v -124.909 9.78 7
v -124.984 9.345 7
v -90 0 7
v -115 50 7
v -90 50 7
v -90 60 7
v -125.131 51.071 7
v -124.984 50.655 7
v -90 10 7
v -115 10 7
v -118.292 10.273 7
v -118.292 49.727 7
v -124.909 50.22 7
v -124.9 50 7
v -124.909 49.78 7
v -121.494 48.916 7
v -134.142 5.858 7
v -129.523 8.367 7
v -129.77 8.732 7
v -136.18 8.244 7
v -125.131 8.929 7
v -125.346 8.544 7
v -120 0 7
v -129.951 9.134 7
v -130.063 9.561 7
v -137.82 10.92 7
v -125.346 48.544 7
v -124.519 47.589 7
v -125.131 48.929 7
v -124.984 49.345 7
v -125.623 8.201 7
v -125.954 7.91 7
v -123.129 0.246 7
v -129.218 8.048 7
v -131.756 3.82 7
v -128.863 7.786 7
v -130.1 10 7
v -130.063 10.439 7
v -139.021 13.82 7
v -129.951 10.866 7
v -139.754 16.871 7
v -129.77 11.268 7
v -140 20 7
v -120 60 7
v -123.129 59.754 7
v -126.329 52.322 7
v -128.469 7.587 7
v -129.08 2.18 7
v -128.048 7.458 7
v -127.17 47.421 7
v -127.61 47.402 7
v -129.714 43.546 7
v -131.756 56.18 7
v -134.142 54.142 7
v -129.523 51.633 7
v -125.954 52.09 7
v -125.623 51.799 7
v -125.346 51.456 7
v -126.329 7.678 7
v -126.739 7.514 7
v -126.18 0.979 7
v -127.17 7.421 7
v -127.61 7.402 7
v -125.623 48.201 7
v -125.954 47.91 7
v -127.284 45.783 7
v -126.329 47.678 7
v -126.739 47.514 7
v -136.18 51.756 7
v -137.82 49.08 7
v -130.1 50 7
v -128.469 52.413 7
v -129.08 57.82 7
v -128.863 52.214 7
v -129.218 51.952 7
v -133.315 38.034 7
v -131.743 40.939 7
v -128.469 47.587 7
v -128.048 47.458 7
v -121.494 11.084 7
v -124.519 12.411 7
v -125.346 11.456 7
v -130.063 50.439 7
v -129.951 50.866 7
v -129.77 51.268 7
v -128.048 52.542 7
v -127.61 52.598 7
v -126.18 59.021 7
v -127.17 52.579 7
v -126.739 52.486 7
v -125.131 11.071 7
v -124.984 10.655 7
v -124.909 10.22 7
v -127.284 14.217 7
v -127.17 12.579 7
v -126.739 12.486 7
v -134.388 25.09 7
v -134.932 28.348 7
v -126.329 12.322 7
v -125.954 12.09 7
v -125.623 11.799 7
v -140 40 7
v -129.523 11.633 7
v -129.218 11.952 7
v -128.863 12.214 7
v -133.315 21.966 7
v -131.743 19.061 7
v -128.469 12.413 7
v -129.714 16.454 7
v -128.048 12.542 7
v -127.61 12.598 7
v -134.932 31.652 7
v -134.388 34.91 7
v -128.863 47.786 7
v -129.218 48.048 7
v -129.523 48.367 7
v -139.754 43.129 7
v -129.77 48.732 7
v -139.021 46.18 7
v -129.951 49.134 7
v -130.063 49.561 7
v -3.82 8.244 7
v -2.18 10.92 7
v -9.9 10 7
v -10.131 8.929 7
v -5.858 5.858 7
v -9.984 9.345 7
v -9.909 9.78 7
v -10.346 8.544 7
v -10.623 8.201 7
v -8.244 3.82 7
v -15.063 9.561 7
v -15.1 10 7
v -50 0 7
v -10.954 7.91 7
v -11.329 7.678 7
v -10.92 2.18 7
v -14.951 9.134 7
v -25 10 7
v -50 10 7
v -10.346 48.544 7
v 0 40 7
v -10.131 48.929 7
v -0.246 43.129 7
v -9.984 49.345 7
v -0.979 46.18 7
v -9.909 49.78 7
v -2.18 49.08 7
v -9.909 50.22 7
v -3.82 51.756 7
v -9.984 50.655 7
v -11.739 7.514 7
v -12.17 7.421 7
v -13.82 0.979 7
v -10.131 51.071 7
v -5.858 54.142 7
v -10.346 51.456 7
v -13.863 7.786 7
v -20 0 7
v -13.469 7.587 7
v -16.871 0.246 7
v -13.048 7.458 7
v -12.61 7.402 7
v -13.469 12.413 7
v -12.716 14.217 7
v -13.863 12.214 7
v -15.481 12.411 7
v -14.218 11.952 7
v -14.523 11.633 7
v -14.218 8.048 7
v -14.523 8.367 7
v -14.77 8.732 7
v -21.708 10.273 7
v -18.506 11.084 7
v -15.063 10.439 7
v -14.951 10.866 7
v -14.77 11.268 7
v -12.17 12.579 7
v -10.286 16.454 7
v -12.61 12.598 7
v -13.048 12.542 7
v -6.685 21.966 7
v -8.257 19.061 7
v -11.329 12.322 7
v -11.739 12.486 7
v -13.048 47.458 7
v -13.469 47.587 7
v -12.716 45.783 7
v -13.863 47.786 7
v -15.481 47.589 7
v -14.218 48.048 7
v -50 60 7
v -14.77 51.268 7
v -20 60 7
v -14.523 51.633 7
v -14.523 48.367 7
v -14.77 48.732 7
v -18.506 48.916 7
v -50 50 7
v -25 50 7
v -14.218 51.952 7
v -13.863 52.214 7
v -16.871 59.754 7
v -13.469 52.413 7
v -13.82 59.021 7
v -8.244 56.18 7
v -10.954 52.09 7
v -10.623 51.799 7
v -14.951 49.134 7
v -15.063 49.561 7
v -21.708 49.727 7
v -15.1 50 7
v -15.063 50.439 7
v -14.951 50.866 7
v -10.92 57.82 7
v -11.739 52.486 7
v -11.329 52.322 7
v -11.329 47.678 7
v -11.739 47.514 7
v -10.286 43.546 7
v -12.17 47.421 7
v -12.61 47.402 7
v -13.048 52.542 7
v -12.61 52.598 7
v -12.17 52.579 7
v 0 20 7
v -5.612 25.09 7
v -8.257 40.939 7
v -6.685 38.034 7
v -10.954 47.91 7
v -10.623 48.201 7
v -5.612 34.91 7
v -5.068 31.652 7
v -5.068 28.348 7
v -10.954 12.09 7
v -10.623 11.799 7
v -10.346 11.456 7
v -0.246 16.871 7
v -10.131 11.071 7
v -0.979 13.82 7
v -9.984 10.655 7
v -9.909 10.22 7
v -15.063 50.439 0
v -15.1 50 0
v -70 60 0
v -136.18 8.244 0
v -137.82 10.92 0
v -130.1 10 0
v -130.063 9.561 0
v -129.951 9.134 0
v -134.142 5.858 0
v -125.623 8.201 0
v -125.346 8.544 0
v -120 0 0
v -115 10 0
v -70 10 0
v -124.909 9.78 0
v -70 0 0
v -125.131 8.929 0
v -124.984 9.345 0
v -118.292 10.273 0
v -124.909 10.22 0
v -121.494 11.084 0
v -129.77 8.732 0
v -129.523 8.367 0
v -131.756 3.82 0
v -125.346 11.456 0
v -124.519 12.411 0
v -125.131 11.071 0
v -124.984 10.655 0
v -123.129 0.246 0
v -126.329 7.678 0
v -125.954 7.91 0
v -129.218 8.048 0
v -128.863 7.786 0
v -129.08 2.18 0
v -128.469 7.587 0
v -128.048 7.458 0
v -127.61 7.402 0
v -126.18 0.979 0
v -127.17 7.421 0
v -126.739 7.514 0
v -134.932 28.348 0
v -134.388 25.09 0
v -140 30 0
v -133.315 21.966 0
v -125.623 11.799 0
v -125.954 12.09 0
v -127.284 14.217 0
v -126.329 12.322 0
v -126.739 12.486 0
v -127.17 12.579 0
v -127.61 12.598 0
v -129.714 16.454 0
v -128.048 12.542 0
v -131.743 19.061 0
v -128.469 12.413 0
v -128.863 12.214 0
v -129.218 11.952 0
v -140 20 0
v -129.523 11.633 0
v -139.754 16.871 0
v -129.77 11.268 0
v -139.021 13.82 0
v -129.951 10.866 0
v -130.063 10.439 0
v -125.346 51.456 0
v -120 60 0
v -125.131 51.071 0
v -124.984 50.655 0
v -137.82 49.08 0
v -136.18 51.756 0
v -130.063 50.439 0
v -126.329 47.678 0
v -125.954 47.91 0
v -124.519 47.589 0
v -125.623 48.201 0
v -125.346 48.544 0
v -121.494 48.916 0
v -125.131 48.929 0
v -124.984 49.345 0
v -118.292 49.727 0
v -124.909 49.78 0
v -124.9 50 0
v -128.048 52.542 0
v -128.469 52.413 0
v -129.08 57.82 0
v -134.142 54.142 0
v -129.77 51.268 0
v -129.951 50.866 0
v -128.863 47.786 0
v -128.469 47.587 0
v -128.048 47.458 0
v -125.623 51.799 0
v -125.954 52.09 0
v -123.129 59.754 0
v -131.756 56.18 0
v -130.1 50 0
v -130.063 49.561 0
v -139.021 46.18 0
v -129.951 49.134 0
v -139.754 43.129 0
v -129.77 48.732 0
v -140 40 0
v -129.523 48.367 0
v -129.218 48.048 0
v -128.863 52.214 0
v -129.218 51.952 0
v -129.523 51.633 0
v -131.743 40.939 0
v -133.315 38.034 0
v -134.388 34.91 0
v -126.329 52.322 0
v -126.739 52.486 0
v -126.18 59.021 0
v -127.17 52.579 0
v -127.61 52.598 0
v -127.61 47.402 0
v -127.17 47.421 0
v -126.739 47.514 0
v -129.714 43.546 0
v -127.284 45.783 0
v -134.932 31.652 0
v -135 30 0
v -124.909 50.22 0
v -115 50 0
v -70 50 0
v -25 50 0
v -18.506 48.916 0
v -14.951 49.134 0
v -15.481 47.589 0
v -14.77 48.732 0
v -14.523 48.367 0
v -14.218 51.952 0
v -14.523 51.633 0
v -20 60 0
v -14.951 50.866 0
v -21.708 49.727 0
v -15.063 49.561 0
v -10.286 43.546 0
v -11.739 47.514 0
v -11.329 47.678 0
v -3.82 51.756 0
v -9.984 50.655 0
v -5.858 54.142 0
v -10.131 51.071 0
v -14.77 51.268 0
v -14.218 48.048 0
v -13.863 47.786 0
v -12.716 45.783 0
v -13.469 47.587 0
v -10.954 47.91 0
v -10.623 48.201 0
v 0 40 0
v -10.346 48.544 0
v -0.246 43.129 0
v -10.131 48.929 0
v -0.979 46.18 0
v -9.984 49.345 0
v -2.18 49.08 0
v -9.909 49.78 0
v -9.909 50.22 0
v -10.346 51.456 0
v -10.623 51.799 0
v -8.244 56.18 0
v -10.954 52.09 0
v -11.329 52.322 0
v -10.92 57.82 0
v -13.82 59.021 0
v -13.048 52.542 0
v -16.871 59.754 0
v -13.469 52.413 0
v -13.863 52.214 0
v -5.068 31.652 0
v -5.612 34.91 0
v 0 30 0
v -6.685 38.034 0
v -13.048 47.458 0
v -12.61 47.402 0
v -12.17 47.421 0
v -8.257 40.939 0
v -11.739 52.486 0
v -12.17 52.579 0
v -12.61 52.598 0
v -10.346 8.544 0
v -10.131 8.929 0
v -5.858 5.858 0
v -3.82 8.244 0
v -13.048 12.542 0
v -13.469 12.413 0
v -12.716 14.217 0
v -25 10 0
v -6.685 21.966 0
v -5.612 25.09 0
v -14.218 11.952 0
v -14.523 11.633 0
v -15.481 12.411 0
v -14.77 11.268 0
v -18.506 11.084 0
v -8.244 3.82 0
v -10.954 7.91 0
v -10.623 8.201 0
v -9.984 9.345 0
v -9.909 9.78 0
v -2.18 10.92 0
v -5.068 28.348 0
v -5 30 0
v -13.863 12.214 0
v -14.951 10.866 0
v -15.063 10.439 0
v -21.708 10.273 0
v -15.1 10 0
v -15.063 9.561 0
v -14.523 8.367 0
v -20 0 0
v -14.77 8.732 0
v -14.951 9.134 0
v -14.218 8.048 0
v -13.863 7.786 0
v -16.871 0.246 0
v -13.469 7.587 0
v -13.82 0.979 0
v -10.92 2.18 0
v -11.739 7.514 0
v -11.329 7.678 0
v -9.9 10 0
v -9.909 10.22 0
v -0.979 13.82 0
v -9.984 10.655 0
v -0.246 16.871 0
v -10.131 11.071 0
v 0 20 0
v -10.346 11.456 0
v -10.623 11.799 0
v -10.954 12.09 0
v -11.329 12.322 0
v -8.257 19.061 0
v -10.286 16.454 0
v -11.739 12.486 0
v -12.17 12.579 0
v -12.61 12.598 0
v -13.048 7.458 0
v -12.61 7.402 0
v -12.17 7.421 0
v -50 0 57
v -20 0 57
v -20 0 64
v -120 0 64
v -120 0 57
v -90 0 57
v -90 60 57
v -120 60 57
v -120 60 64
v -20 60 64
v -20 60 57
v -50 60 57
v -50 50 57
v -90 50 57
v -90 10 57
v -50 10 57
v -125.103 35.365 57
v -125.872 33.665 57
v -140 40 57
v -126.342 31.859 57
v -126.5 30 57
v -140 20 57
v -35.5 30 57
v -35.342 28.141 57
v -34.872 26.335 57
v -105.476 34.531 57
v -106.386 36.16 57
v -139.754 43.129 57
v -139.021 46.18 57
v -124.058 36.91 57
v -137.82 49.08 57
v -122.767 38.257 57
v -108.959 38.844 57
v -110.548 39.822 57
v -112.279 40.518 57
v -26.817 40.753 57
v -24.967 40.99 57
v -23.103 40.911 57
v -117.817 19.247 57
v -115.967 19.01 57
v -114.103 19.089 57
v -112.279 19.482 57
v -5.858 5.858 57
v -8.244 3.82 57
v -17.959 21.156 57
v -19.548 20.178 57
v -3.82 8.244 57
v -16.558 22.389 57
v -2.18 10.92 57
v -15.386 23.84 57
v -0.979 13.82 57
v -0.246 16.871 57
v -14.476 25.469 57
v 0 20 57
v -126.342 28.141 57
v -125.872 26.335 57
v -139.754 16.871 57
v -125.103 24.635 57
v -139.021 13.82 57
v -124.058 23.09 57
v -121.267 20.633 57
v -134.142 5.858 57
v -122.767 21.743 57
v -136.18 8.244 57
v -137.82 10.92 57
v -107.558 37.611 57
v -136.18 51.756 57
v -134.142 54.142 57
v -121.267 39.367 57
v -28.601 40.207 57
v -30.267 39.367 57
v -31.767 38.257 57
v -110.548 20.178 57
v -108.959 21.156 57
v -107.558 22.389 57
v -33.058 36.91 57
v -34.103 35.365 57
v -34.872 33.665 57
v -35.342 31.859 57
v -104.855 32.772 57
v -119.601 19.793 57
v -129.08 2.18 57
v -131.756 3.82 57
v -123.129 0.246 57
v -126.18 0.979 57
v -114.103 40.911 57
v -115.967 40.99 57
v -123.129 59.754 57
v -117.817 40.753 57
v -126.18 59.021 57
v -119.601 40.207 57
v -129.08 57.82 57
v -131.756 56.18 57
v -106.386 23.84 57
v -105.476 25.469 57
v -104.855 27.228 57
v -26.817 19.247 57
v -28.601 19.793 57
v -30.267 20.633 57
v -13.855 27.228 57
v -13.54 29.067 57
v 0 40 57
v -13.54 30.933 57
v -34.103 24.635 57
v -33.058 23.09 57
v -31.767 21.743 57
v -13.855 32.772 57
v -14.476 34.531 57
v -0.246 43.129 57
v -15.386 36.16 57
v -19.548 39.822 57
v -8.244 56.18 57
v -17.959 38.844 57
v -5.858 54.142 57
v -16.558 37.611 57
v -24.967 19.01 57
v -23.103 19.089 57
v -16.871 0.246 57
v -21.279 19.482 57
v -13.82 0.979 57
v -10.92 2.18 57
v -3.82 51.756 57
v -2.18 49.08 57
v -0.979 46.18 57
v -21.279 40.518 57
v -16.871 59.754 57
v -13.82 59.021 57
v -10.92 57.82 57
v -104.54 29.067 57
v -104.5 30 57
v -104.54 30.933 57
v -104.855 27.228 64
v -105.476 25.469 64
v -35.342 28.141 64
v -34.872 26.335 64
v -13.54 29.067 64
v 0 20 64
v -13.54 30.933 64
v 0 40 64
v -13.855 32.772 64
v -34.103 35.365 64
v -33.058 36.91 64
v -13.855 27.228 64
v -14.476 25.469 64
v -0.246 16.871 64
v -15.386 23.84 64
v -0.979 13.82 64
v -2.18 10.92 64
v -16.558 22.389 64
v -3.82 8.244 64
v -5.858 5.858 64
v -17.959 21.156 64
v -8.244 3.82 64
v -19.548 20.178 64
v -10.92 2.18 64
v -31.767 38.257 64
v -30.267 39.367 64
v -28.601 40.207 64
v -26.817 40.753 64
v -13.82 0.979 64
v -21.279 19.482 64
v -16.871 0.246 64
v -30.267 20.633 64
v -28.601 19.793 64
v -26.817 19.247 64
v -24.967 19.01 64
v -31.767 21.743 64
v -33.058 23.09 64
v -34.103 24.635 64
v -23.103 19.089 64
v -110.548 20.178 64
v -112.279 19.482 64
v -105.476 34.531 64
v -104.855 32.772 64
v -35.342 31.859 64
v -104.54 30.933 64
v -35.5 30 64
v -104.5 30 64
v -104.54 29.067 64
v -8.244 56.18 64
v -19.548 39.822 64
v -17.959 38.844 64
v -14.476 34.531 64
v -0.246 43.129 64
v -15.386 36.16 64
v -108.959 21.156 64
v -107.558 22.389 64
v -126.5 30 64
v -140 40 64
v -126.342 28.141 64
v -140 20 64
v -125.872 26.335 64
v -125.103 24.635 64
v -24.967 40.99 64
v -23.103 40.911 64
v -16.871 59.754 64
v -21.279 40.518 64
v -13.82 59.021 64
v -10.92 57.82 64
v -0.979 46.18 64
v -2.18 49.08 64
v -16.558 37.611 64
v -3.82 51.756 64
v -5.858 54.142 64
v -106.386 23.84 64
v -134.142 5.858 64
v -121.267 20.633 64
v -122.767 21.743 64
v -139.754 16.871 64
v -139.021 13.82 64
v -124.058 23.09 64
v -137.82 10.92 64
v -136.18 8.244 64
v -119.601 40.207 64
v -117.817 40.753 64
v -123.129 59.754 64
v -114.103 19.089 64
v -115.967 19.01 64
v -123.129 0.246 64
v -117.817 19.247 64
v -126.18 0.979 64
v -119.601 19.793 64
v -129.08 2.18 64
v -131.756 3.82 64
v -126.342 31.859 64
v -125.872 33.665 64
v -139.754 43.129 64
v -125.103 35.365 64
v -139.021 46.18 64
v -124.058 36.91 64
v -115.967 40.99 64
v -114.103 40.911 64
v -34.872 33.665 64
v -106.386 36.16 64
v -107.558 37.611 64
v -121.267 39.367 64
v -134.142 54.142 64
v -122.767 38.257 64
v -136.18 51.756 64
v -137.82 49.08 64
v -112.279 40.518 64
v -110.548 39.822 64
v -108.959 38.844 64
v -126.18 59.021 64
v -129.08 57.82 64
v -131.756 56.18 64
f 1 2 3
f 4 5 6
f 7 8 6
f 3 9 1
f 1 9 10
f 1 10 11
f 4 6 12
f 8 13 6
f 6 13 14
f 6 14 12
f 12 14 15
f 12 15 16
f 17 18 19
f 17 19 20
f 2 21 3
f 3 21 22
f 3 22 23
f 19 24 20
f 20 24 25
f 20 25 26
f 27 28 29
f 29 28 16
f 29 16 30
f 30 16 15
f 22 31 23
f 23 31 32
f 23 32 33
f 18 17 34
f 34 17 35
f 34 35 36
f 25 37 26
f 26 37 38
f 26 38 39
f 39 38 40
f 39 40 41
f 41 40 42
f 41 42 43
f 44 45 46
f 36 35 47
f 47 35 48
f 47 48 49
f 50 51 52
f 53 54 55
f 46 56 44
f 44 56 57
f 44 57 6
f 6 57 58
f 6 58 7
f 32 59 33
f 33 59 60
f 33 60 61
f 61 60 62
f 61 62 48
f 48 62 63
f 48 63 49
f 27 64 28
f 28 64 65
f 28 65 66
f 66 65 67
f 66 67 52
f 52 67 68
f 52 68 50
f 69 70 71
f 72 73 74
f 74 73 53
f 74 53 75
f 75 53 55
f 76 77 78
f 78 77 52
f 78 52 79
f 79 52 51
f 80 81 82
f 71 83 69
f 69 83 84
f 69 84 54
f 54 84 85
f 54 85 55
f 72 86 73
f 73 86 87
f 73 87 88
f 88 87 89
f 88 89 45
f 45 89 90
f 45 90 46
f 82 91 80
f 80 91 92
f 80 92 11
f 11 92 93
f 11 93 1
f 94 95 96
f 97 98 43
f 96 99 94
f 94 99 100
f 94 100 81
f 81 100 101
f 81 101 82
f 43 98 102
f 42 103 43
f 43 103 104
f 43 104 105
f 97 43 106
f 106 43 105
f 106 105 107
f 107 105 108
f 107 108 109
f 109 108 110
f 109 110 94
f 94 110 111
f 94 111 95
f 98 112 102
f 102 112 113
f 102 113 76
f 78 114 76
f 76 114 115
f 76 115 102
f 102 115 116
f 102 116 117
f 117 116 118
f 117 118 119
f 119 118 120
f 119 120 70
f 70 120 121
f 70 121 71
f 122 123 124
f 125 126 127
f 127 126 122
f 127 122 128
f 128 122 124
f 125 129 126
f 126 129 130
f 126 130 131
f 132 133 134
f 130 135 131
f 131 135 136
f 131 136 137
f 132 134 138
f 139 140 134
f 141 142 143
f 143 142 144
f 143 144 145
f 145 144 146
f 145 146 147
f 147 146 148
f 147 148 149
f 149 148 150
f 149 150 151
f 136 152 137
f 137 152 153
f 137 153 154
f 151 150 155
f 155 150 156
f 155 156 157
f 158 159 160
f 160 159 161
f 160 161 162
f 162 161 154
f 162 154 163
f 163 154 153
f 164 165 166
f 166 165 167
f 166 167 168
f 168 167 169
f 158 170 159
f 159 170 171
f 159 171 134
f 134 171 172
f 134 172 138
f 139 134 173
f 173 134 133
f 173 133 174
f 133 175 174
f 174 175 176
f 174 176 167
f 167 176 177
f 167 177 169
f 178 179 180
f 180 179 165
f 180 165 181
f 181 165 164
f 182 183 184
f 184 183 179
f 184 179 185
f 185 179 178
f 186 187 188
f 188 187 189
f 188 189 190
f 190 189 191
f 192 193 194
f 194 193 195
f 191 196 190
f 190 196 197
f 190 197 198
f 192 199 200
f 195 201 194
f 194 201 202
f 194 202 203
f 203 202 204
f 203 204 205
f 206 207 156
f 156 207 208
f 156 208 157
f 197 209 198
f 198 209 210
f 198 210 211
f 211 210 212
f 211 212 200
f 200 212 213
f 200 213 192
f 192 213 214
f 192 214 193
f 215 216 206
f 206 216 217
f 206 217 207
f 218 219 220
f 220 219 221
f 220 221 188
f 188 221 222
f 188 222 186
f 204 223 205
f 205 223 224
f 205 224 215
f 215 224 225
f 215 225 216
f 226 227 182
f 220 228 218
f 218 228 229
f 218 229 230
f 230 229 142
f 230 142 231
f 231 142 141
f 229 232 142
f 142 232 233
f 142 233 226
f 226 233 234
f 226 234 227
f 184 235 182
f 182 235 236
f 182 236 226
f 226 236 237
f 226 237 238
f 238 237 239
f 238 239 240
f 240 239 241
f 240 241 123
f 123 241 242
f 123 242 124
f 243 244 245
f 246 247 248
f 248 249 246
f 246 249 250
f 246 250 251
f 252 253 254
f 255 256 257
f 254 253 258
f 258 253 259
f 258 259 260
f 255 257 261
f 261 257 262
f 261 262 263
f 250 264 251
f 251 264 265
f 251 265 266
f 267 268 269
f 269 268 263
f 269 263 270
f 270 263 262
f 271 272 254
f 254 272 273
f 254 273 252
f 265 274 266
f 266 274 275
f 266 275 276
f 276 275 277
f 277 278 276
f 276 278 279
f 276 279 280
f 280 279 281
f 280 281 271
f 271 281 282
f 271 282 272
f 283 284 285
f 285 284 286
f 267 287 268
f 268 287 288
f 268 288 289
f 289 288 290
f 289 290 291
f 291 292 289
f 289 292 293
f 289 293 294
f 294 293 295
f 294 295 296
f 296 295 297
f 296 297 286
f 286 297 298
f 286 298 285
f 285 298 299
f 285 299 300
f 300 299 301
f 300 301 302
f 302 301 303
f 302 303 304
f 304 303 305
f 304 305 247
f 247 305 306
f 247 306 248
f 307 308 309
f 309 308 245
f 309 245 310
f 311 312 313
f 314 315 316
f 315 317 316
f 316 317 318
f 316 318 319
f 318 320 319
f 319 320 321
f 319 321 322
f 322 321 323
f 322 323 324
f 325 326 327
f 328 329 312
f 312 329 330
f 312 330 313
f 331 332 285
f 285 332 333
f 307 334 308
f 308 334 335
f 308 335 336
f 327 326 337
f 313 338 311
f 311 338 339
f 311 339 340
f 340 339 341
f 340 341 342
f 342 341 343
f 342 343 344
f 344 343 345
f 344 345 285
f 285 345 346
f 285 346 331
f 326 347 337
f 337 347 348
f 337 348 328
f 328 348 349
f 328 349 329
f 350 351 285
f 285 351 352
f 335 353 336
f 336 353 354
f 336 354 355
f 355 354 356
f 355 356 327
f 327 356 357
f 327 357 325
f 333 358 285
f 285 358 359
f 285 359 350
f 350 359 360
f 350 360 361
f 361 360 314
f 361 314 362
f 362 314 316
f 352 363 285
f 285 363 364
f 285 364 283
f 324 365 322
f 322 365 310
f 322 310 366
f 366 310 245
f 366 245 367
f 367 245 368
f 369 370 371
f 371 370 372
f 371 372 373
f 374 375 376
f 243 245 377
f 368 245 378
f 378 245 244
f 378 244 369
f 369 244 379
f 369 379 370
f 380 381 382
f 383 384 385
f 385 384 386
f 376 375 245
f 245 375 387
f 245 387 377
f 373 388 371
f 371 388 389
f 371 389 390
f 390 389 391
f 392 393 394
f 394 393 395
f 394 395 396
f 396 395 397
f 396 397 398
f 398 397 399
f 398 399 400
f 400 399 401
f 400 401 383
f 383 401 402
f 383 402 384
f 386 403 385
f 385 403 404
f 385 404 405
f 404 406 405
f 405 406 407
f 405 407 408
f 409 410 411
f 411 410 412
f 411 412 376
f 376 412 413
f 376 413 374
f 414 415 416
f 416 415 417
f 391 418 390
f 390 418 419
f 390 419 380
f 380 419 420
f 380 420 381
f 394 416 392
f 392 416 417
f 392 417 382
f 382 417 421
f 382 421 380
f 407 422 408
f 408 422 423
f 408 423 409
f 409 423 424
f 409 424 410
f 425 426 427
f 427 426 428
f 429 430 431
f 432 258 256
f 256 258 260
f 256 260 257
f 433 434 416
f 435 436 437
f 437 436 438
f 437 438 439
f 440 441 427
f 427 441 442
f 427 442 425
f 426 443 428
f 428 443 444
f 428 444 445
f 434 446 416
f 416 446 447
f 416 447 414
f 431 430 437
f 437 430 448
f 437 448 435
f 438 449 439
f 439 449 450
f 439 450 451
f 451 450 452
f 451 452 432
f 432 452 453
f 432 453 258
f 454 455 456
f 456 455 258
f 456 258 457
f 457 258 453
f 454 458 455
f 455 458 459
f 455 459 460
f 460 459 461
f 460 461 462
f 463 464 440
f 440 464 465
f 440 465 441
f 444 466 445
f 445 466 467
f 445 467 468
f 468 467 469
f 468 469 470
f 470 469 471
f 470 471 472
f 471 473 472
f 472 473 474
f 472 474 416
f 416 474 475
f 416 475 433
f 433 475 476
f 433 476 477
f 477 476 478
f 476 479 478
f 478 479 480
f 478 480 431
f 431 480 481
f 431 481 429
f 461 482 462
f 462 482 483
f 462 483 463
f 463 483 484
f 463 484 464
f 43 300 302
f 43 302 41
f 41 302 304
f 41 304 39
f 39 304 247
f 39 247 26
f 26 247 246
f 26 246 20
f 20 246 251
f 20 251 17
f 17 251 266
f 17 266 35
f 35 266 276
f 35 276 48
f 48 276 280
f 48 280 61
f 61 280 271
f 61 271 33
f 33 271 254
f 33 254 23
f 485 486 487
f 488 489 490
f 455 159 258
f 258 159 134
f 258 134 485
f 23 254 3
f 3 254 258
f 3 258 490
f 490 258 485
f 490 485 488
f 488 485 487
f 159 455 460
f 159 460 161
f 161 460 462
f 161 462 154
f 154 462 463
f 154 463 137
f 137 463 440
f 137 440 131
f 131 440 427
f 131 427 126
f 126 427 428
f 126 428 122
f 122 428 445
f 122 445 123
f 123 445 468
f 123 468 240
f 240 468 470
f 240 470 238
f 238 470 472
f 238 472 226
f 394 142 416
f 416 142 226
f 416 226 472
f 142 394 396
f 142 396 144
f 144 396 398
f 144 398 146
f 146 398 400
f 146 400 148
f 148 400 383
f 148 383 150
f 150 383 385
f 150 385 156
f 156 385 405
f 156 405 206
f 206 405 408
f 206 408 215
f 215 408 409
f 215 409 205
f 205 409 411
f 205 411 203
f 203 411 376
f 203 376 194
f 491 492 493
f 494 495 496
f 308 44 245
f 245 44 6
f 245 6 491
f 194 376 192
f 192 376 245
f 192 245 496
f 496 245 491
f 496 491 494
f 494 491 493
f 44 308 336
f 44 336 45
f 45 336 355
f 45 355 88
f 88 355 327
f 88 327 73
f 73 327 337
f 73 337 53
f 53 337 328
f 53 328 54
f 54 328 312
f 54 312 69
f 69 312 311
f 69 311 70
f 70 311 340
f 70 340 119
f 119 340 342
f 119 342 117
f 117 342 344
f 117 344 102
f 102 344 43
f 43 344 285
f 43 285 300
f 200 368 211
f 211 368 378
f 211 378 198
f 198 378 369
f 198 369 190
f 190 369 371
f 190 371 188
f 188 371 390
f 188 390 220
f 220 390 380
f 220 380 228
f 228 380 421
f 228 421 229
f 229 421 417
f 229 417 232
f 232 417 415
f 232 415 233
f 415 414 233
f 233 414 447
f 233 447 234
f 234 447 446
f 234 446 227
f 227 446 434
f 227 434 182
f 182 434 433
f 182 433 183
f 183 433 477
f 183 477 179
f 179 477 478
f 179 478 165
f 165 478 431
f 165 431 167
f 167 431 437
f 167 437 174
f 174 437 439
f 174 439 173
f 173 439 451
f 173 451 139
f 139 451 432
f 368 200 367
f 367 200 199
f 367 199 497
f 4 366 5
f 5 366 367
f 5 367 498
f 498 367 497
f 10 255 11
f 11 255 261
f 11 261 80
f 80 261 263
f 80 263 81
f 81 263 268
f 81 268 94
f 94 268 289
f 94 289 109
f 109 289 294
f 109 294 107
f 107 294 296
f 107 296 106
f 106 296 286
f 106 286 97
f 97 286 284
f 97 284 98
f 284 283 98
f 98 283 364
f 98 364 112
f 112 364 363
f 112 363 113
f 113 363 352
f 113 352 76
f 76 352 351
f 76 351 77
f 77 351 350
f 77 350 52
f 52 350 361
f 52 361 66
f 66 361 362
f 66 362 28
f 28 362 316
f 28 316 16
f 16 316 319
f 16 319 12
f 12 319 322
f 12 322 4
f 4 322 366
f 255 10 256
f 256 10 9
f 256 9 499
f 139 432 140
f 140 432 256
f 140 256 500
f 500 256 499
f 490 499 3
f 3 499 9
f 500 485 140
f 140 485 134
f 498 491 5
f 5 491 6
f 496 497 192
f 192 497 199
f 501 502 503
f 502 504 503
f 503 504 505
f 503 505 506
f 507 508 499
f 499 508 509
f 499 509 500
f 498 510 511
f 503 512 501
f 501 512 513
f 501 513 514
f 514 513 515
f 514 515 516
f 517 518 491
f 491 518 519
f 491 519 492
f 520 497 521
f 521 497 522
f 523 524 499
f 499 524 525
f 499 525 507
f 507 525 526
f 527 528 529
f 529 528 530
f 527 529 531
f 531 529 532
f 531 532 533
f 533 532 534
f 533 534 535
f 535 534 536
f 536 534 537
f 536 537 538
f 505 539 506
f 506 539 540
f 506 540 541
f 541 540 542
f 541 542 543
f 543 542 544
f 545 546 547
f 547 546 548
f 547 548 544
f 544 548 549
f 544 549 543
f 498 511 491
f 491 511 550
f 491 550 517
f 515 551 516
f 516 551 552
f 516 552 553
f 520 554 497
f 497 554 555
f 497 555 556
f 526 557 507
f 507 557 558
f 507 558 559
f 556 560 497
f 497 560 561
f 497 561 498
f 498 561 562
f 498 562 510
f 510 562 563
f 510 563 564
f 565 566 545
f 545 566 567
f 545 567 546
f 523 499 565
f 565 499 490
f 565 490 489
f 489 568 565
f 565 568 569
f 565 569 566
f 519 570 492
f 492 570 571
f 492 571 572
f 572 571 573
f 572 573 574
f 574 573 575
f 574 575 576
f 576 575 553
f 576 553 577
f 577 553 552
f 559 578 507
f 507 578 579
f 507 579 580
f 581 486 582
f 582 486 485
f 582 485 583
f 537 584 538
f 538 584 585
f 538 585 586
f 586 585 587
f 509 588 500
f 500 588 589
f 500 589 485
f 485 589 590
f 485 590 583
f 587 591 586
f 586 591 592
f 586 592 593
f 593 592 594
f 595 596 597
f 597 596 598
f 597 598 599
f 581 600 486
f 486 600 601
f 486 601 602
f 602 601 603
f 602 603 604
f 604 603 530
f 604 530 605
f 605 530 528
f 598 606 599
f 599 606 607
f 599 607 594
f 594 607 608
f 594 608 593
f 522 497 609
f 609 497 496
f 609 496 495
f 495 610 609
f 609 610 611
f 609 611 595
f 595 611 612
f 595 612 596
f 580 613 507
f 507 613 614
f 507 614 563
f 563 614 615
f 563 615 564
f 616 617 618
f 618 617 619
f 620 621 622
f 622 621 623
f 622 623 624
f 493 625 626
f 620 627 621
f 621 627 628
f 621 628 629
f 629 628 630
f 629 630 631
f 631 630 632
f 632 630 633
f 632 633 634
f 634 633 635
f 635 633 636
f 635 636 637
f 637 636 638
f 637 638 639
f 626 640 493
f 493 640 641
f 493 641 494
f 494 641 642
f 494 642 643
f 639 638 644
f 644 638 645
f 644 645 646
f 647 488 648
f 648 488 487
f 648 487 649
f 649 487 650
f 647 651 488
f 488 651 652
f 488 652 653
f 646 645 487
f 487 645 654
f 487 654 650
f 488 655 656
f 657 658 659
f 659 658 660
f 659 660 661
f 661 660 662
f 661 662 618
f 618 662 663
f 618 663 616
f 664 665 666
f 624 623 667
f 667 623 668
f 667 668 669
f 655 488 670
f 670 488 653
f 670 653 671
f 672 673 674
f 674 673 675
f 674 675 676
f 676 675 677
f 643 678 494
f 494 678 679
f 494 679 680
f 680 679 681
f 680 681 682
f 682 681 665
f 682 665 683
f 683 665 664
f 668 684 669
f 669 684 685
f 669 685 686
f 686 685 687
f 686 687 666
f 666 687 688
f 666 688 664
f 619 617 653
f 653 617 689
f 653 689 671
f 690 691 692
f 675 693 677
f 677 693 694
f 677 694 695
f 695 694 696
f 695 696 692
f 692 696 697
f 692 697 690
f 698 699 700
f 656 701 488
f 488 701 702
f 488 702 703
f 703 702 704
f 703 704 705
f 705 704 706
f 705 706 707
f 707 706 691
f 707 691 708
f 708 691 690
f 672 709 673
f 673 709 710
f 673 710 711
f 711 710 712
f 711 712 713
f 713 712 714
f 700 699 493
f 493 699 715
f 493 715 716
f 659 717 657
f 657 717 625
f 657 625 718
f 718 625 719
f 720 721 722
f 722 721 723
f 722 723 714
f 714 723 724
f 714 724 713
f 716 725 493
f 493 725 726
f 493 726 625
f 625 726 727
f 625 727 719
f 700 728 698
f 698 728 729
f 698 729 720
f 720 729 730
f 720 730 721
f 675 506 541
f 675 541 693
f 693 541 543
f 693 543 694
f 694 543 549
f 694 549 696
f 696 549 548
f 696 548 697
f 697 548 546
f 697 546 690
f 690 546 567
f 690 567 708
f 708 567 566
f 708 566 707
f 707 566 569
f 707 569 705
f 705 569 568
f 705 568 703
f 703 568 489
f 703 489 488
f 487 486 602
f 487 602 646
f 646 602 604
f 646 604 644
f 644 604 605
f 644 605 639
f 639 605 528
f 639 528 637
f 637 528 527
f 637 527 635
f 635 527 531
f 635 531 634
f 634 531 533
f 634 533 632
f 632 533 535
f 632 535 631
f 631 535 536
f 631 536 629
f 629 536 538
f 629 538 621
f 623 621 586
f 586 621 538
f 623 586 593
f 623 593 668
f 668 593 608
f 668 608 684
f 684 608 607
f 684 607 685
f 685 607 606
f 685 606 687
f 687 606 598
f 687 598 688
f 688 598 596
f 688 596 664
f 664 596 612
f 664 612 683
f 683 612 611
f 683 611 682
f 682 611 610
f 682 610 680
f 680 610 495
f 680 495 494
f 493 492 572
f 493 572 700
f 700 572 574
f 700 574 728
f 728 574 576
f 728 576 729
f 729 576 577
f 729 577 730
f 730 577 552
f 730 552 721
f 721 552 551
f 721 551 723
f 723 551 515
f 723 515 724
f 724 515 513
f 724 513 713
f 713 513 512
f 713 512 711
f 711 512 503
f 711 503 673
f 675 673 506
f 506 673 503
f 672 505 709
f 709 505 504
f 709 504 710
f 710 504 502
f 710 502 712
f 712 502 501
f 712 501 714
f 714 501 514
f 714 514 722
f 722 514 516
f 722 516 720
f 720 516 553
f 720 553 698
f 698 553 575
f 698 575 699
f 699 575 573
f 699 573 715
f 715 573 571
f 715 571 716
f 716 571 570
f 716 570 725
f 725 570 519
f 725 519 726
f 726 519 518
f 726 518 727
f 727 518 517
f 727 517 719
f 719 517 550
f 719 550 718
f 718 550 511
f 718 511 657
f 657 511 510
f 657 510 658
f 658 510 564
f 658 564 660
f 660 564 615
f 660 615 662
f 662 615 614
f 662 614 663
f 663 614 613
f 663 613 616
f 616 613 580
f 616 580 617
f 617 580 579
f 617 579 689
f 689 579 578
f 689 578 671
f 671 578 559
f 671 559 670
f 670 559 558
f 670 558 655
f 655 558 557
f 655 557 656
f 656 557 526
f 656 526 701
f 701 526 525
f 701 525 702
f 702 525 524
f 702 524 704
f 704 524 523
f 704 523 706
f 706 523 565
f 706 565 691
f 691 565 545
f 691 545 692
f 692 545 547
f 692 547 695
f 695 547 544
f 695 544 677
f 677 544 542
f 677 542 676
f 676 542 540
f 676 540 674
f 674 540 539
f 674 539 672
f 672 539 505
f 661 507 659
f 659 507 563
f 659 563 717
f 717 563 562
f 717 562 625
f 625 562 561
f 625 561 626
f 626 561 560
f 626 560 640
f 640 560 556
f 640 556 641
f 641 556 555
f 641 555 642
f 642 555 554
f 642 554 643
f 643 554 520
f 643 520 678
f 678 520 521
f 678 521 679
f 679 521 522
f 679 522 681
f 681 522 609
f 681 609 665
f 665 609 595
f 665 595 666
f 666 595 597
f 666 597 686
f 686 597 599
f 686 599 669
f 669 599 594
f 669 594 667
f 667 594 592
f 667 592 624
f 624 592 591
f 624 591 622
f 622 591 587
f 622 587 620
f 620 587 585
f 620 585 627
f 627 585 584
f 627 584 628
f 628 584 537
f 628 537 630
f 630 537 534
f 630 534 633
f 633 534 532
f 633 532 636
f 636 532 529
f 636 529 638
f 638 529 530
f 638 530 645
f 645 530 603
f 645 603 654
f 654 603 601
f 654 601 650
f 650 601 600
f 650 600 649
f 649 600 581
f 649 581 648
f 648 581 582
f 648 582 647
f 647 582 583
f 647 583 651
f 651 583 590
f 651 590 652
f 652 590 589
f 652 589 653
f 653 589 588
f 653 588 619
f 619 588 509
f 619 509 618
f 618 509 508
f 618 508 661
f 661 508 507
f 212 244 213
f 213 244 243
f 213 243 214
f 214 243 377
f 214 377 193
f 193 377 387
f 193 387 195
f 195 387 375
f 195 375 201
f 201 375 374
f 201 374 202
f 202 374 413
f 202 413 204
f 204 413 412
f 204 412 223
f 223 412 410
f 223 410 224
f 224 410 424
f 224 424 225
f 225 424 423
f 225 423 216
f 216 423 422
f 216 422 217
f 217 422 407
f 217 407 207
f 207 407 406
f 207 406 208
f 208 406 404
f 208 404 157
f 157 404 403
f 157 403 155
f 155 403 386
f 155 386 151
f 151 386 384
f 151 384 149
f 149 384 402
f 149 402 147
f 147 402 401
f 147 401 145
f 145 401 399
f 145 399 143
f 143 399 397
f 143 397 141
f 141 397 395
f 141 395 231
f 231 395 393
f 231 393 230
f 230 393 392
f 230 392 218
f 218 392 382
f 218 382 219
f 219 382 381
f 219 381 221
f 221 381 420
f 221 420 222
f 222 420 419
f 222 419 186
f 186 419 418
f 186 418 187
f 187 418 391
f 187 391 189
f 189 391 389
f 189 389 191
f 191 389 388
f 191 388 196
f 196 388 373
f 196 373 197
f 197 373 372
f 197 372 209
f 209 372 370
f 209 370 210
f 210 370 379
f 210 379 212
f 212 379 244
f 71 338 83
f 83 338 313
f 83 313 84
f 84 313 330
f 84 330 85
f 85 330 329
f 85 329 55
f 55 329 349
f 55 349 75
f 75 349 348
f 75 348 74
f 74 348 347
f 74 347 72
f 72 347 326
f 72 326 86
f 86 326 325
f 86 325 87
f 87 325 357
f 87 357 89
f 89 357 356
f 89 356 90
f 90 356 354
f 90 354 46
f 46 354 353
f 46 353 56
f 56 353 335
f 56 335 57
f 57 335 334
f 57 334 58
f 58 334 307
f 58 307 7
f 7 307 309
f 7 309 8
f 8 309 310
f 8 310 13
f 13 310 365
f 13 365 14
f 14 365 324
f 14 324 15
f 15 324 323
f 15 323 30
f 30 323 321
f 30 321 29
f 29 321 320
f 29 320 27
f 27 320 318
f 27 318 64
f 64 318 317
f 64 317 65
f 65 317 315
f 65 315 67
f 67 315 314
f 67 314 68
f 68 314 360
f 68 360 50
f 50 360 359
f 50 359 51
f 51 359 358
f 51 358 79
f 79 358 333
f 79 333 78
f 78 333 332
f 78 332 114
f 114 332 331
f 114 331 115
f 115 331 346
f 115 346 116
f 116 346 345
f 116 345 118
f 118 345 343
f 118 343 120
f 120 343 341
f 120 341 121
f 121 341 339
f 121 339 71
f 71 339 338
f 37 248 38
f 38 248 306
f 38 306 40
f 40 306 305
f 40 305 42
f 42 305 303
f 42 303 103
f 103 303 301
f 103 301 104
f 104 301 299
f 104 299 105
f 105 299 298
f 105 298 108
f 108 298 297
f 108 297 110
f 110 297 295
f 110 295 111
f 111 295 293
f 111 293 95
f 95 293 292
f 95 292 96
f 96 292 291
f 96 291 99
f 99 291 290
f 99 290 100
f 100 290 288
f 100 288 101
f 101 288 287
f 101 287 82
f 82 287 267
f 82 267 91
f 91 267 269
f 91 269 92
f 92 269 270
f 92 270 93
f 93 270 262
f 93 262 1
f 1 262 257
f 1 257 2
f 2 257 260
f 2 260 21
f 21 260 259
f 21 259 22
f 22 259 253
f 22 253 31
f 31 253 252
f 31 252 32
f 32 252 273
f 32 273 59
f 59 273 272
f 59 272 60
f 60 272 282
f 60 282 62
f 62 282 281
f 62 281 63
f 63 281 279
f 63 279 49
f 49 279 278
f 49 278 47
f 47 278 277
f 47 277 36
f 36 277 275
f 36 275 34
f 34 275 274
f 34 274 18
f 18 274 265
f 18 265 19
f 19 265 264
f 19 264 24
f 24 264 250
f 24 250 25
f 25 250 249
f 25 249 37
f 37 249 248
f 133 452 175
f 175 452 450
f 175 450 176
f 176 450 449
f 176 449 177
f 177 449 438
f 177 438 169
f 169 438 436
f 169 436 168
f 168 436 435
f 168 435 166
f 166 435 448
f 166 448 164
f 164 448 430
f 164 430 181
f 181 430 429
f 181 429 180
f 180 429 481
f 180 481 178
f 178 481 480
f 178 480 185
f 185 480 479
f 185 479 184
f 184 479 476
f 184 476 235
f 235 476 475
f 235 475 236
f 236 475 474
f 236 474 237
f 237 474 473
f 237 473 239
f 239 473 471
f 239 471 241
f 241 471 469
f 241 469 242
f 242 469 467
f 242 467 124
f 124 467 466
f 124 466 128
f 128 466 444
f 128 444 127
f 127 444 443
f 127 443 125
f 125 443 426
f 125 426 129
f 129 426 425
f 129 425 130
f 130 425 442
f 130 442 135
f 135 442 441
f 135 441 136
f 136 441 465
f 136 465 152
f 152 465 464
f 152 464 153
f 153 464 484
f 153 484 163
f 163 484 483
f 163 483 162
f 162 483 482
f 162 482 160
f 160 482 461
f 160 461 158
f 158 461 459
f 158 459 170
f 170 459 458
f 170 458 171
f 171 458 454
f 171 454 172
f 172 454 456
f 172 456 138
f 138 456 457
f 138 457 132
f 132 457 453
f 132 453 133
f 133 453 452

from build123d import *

# Parameters (mm, degrees)
BOSS_EXTRUDE1_DEPTH = 7
SKETCH3_W           = 40
SKETCH3_H           = 10
BOSS_EXTRUDE2_DEPTH = 50
SKETCH4_R           = 11
BOSS_EXTRUDE3_DEPTH = 7
SKETCH6_R           = 2.6
CUT_EXTRUDE1_DEPTH  = 7


with BuildPart() as part:
    # Sketch2 → Boss-Extrude1 (new body)
    with BuildSketch(Plane.XY):
        with BuildLine():
            Line((-20, 0), (-120, 0))
            ThreePointArc((-120, 0), (-134.142135624, 5.857864376), (-140, 20))
            Line((-140, 20), (-140, 40))
            ThreePointArc((-140, 40), (-134.142135624, 54.142135624), (-120, 60))
            Line((-120, 60), (-20, 60))
            ThreePointArc((-20, 60), (-5.857864376, 54.142135624), (0, 40))
            Line((0, 40), (0, 20))
            ThreePointArc((0, 20), (-5.857864376, 5.857864376), (-20, 0))
        make_face()
        with BuildLine():
            Line((-115, 50), (-25, 50))
            ThreePointArc((-25, 50), (-10.857864376, 44.142135624), (-5, 30))
            ThreePointArc((-5, 30), (-10.857864376, 15.857864376), (-25, 10))
            Line((-25, 10), (-115, 10))
            ThreePointArc((-115, 10), (-129.142135624, 15.857864376), (-135, 30))
            ThreePointArc((-135, 30), (-129.142135624, 44.142135624), (-115, 50))
        make_face(mode=Mode.SUBTRACT)
    extrude(amount=BOSS_EXTRUDE1_DEPTH)

    # Sketch3 → Boss-Extrude2 (add)
    with BuildSketch(Plane.XY.offset(7)):
        with Locations((-70, 55)):
            Rectangle(SKETCH3_W, SKETCH3_H)
        with Locations((-70, 5)):
            Rectangle(SKETCH3_W, SKETCH3_H)
    extrude(amount=BOSS_EXTRUDE2_DEPTH)

    # Sketch4 → Boss-Extrude3 (add)
    with BuildSketch(Plane.XY.offset(57)):
        with BuildLine():
            Line((-120, 60), (-20, 60))
            ThreePointArc((-20, 60), (-5.857864376, 54.142135624), (0, 40))
            Line((0, 40), (0, 20))
            ThreePointArc((0, 20), (-5.857864376, 5.857864376), (-20, 0))
            Line((-20, 0), (-120, 0))
            ThreePointArc((-120, 0), (-134.142135624, 5.857864376), (-140, 20))
            Line((-140, 20), (-140, 40))
            ThreePointArc((-140, 40), (-134.142135624, 54.142135624), (-120, 60))
        make_face()
        with Locations((-115.5, 30)):
            Circle(SKETCH4_R, mode=Mode.SUBTRACT)
        with Locations((-24.5, 30)):
            Circle(SKETCH4_R, mode=Mode.SUBTRACT)
    extrude(amount=BOSS_EXTRUDE3_DEPTH)

    # Sketch6 → Cut-Extrude1 (cut)
    with BuildSketch(Plane(origin=(0, 0, 0), x_dir=(-1, 0, 0), z_dir=(0, 0, -1))):
        with Locations((12.5, 50)):
            Circle(SKETCH6_R)
        with Locations((127.5, 50)):
            Circle(SKETCH6_R)
        with Locations((127.5, 10)):
            Circle(SKETCH6_R)
        with Locations((12.5, 10)):
            Circle(SKETCH6_R)
    extrude(amount=-CUT_EXTRUDE1_DEPTH, mode=Mode.SUBTRACT)


solid = part.part
